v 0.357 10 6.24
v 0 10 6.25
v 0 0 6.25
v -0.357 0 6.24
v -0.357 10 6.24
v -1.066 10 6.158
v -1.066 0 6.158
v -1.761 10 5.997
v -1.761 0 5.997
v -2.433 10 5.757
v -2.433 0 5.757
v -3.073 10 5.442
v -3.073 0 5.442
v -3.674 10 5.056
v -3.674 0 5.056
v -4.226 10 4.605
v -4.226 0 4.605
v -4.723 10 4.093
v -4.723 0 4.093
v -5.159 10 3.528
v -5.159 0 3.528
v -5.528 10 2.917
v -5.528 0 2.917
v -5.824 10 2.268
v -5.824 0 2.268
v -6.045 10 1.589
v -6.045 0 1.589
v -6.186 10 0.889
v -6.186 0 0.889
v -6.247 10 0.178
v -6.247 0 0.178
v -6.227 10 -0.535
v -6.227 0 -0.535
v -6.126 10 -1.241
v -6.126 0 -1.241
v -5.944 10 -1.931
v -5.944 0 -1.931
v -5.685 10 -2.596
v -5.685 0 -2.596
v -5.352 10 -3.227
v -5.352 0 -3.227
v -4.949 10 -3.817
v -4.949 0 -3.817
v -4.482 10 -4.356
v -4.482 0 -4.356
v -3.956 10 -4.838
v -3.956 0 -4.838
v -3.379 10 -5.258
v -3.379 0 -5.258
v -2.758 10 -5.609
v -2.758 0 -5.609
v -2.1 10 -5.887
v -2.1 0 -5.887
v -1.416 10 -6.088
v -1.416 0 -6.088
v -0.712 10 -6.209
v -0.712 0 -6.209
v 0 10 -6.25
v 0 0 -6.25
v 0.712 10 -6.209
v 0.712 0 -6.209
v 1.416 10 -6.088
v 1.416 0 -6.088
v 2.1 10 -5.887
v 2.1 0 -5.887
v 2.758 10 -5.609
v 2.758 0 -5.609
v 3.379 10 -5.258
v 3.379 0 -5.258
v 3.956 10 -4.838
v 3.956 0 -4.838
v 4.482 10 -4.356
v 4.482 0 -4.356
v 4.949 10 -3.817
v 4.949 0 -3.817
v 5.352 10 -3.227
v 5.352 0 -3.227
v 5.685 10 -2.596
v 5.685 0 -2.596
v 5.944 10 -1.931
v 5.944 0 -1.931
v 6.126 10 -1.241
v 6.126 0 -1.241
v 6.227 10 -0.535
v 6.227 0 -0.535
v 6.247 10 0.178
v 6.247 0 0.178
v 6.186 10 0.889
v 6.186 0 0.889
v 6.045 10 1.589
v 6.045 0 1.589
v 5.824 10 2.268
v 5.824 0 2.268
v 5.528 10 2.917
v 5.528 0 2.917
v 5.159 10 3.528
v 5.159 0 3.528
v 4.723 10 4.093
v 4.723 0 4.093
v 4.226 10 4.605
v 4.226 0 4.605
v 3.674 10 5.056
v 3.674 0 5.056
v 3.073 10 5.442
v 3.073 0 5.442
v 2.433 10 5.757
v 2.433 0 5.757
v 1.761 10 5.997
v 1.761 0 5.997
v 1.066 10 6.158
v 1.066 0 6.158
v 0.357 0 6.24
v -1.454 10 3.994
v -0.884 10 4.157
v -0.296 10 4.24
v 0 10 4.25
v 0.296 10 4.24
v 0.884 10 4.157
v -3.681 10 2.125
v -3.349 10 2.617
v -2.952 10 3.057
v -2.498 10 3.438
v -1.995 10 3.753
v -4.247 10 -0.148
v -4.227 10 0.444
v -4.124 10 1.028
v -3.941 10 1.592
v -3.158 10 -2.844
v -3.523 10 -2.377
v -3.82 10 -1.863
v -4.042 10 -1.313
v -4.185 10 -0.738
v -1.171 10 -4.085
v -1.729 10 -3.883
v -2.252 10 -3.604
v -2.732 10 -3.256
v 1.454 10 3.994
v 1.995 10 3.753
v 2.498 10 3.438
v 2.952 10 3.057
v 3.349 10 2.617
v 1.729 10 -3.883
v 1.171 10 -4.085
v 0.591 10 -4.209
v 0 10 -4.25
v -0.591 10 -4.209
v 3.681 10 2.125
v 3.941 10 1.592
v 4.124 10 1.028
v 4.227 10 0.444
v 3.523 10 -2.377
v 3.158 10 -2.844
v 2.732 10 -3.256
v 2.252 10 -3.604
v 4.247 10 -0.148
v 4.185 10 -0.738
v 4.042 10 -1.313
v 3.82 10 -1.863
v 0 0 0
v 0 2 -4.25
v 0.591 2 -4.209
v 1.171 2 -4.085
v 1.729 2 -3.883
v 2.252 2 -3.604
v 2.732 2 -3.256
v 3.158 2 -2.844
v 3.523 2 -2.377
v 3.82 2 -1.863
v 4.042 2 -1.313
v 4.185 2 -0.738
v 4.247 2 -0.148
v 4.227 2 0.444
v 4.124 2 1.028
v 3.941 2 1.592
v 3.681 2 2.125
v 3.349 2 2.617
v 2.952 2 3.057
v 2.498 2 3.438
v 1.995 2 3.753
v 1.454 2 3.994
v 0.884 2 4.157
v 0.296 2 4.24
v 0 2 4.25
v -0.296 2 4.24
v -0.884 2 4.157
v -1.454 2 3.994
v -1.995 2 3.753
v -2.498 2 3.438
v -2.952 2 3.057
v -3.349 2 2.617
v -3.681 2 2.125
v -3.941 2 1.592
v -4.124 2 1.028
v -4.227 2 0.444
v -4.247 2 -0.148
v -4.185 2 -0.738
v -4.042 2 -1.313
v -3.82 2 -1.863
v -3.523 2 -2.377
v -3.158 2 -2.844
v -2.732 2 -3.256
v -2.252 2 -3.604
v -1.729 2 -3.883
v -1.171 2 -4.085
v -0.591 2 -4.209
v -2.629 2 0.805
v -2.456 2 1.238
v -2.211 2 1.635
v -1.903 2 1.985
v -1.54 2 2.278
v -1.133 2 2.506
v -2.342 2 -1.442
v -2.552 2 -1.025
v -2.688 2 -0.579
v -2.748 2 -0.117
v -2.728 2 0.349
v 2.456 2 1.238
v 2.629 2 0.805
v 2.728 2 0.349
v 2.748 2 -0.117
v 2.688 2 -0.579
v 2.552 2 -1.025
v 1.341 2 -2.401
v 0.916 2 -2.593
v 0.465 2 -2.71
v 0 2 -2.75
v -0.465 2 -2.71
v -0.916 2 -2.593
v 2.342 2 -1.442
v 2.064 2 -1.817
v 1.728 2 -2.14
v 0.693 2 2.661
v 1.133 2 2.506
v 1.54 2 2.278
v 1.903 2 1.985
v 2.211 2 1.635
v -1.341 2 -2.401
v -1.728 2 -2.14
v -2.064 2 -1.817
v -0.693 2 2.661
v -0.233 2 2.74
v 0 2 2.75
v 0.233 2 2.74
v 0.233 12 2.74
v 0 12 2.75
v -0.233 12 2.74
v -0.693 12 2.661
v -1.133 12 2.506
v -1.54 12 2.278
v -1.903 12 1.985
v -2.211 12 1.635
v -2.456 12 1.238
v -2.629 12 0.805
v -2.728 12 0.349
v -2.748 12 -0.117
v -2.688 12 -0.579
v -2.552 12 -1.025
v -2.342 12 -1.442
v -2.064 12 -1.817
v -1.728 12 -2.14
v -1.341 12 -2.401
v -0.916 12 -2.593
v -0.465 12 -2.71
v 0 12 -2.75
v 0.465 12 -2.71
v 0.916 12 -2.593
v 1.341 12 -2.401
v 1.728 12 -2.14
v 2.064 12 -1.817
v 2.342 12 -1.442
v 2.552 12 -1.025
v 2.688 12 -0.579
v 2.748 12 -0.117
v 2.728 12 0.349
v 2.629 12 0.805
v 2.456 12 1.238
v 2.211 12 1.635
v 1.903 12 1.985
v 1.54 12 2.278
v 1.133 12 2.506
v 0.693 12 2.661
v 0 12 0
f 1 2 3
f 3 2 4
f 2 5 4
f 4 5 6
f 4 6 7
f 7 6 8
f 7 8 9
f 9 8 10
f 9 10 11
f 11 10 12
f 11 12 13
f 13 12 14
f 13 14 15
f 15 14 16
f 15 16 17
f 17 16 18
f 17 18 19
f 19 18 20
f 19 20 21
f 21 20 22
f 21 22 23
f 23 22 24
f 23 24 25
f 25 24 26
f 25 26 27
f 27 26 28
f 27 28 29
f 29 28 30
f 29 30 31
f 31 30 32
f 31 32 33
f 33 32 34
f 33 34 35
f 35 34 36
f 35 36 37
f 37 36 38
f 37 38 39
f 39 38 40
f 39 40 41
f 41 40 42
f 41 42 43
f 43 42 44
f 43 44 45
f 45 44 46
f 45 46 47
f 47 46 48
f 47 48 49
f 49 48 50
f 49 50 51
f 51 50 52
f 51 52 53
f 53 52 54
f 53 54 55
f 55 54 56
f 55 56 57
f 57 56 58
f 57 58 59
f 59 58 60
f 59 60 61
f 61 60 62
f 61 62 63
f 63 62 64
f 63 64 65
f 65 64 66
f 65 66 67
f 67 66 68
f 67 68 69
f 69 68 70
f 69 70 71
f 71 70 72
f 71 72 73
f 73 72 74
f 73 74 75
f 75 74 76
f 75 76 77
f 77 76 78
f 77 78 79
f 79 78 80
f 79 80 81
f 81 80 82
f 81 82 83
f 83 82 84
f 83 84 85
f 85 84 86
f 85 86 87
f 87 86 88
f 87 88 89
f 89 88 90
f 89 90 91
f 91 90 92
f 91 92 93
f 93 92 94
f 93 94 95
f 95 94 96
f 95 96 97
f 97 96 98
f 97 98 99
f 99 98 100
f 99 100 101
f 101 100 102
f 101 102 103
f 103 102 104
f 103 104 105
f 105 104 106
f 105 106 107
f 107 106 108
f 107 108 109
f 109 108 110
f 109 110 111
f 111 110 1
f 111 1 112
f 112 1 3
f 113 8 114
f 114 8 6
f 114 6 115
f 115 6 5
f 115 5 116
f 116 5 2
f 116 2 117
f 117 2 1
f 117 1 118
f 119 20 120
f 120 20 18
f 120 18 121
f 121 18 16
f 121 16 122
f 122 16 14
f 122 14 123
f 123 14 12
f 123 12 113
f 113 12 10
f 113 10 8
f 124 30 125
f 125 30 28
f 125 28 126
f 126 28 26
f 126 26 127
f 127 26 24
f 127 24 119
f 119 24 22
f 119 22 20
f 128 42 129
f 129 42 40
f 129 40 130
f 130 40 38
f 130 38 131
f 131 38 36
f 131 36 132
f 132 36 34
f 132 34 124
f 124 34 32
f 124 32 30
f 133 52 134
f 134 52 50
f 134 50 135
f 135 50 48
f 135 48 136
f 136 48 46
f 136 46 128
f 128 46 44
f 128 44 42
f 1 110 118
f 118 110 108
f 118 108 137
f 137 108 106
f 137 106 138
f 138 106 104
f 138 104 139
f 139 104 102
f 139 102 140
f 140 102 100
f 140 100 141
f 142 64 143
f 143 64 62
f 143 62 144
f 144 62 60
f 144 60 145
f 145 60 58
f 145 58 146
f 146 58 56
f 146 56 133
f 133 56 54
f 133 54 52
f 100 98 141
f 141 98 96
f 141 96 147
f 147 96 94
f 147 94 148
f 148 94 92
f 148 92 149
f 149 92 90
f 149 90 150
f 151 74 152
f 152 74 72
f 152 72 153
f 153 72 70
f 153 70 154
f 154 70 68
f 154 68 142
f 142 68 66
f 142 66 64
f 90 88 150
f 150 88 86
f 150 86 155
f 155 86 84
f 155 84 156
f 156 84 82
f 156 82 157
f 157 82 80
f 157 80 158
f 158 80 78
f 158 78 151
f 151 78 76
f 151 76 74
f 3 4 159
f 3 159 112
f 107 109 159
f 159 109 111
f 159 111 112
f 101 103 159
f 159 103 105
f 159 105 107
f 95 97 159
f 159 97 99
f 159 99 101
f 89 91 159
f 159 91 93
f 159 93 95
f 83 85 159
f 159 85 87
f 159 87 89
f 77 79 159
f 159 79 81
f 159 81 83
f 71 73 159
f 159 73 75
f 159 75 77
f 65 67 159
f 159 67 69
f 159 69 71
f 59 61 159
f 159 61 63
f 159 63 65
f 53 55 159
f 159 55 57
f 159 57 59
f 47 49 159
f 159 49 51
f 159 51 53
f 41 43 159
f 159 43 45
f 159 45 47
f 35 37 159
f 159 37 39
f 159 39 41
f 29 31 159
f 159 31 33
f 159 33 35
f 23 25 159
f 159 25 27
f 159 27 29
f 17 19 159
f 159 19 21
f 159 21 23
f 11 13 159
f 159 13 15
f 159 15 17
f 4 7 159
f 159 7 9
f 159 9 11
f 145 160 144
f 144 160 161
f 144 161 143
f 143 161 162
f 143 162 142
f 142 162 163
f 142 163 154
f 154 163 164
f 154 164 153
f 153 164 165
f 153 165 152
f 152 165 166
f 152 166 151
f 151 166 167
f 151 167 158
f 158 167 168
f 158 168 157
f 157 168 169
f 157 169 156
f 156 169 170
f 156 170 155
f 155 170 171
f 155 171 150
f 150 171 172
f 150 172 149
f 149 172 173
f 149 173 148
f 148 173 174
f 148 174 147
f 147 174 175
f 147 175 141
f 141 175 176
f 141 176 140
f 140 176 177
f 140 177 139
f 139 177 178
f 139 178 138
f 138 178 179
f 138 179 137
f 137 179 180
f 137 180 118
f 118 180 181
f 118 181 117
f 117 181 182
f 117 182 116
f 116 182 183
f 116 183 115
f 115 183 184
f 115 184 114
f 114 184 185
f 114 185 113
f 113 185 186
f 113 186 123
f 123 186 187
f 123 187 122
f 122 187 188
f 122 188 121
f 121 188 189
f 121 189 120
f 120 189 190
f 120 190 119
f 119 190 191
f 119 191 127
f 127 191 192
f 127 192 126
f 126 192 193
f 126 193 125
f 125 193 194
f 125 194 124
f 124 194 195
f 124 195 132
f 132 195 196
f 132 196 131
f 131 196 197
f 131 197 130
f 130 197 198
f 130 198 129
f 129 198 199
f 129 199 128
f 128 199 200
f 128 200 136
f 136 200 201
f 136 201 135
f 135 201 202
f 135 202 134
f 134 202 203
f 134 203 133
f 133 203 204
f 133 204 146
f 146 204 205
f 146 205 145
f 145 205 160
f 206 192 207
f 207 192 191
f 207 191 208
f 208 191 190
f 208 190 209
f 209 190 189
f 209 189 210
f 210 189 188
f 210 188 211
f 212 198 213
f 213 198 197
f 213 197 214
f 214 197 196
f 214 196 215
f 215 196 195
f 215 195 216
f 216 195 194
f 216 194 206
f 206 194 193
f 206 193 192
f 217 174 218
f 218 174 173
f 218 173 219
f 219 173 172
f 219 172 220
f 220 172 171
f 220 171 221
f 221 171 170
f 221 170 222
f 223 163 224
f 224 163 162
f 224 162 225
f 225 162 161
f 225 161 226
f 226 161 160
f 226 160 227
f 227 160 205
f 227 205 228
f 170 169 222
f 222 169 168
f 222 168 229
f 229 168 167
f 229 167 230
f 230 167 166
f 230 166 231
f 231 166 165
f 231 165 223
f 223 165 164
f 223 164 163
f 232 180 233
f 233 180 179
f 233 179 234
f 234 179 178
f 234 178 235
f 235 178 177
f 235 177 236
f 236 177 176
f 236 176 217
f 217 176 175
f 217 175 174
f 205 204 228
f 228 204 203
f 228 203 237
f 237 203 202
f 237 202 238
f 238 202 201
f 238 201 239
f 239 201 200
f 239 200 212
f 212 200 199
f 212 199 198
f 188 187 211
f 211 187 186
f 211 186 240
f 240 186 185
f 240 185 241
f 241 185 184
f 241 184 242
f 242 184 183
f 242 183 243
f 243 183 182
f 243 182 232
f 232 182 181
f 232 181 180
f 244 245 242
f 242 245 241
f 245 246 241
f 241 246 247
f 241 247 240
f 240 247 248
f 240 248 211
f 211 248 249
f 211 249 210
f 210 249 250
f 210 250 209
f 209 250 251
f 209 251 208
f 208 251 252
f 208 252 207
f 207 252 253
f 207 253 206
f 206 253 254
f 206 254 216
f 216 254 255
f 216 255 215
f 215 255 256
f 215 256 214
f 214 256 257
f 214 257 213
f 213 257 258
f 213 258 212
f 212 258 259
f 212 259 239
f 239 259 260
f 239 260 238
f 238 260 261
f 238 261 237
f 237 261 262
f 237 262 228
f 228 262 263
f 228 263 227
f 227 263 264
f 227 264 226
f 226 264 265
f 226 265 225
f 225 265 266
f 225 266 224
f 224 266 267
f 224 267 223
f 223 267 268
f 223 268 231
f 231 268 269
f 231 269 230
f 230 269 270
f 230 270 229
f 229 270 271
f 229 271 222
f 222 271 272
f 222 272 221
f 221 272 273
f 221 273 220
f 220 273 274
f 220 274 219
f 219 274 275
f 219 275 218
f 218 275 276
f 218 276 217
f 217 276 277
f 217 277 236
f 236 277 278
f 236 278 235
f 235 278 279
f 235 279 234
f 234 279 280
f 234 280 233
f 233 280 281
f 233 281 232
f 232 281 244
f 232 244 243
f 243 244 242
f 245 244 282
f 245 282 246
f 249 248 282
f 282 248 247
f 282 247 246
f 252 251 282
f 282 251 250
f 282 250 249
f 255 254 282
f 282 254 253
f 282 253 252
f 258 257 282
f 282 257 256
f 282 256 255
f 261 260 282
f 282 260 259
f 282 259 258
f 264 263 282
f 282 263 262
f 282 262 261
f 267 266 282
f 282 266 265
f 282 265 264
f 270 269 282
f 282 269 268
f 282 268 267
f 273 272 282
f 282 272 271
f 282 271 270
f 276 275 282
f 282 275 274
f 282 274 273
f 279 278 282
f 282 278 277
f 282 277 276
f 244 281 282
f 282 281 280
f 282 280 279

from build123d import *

# Parameters (mm, degrees)
SKETCH_1_R      = 6.25
EXTRUDE_2_DEPTH = 10
SHELL_1_T       = -2
SKETCH_2_R      = 2.75
EXTRUDE_3_DEPTH = 10


with BuildPart() as part:
    # 草图1 → 凸台-拉伸2 (new body)
    with BuildSketch(Plane(origin=(0, 0, 0), x_dir=(1, 0, 0), z_dir=(0, 1, 0))):
        with Locations(Location((0, 0, 0), (0, 0, 270))):
            Circle(SKETCH_1_R)
    extrude(amount=EXTRUDE_2_DEPTH)

    # 抽壳1
    shell_1_openings = [part.faces().sort_by_distance(p)[0] for p in [
        (0, 10, 0),
    ]]
    offset(amount=SHELL_1_T, openings=shell_1_openings, kind=Kind.INTERSECTION)

    # 草图2 → 凸台-拉伸3 (add)
    with BuildSketch(Plane(origin=(0, 2, 0), x_dir=(1, 0, 0), z_dir=(0, 1, 0))):
        with Locations(Location((0, 0, 0), (0, 0, 270))):
            Circle(SKETCH_2_R)
    extrude(amount=EXTRUDE_3_DEPTH)


solid = part.part
